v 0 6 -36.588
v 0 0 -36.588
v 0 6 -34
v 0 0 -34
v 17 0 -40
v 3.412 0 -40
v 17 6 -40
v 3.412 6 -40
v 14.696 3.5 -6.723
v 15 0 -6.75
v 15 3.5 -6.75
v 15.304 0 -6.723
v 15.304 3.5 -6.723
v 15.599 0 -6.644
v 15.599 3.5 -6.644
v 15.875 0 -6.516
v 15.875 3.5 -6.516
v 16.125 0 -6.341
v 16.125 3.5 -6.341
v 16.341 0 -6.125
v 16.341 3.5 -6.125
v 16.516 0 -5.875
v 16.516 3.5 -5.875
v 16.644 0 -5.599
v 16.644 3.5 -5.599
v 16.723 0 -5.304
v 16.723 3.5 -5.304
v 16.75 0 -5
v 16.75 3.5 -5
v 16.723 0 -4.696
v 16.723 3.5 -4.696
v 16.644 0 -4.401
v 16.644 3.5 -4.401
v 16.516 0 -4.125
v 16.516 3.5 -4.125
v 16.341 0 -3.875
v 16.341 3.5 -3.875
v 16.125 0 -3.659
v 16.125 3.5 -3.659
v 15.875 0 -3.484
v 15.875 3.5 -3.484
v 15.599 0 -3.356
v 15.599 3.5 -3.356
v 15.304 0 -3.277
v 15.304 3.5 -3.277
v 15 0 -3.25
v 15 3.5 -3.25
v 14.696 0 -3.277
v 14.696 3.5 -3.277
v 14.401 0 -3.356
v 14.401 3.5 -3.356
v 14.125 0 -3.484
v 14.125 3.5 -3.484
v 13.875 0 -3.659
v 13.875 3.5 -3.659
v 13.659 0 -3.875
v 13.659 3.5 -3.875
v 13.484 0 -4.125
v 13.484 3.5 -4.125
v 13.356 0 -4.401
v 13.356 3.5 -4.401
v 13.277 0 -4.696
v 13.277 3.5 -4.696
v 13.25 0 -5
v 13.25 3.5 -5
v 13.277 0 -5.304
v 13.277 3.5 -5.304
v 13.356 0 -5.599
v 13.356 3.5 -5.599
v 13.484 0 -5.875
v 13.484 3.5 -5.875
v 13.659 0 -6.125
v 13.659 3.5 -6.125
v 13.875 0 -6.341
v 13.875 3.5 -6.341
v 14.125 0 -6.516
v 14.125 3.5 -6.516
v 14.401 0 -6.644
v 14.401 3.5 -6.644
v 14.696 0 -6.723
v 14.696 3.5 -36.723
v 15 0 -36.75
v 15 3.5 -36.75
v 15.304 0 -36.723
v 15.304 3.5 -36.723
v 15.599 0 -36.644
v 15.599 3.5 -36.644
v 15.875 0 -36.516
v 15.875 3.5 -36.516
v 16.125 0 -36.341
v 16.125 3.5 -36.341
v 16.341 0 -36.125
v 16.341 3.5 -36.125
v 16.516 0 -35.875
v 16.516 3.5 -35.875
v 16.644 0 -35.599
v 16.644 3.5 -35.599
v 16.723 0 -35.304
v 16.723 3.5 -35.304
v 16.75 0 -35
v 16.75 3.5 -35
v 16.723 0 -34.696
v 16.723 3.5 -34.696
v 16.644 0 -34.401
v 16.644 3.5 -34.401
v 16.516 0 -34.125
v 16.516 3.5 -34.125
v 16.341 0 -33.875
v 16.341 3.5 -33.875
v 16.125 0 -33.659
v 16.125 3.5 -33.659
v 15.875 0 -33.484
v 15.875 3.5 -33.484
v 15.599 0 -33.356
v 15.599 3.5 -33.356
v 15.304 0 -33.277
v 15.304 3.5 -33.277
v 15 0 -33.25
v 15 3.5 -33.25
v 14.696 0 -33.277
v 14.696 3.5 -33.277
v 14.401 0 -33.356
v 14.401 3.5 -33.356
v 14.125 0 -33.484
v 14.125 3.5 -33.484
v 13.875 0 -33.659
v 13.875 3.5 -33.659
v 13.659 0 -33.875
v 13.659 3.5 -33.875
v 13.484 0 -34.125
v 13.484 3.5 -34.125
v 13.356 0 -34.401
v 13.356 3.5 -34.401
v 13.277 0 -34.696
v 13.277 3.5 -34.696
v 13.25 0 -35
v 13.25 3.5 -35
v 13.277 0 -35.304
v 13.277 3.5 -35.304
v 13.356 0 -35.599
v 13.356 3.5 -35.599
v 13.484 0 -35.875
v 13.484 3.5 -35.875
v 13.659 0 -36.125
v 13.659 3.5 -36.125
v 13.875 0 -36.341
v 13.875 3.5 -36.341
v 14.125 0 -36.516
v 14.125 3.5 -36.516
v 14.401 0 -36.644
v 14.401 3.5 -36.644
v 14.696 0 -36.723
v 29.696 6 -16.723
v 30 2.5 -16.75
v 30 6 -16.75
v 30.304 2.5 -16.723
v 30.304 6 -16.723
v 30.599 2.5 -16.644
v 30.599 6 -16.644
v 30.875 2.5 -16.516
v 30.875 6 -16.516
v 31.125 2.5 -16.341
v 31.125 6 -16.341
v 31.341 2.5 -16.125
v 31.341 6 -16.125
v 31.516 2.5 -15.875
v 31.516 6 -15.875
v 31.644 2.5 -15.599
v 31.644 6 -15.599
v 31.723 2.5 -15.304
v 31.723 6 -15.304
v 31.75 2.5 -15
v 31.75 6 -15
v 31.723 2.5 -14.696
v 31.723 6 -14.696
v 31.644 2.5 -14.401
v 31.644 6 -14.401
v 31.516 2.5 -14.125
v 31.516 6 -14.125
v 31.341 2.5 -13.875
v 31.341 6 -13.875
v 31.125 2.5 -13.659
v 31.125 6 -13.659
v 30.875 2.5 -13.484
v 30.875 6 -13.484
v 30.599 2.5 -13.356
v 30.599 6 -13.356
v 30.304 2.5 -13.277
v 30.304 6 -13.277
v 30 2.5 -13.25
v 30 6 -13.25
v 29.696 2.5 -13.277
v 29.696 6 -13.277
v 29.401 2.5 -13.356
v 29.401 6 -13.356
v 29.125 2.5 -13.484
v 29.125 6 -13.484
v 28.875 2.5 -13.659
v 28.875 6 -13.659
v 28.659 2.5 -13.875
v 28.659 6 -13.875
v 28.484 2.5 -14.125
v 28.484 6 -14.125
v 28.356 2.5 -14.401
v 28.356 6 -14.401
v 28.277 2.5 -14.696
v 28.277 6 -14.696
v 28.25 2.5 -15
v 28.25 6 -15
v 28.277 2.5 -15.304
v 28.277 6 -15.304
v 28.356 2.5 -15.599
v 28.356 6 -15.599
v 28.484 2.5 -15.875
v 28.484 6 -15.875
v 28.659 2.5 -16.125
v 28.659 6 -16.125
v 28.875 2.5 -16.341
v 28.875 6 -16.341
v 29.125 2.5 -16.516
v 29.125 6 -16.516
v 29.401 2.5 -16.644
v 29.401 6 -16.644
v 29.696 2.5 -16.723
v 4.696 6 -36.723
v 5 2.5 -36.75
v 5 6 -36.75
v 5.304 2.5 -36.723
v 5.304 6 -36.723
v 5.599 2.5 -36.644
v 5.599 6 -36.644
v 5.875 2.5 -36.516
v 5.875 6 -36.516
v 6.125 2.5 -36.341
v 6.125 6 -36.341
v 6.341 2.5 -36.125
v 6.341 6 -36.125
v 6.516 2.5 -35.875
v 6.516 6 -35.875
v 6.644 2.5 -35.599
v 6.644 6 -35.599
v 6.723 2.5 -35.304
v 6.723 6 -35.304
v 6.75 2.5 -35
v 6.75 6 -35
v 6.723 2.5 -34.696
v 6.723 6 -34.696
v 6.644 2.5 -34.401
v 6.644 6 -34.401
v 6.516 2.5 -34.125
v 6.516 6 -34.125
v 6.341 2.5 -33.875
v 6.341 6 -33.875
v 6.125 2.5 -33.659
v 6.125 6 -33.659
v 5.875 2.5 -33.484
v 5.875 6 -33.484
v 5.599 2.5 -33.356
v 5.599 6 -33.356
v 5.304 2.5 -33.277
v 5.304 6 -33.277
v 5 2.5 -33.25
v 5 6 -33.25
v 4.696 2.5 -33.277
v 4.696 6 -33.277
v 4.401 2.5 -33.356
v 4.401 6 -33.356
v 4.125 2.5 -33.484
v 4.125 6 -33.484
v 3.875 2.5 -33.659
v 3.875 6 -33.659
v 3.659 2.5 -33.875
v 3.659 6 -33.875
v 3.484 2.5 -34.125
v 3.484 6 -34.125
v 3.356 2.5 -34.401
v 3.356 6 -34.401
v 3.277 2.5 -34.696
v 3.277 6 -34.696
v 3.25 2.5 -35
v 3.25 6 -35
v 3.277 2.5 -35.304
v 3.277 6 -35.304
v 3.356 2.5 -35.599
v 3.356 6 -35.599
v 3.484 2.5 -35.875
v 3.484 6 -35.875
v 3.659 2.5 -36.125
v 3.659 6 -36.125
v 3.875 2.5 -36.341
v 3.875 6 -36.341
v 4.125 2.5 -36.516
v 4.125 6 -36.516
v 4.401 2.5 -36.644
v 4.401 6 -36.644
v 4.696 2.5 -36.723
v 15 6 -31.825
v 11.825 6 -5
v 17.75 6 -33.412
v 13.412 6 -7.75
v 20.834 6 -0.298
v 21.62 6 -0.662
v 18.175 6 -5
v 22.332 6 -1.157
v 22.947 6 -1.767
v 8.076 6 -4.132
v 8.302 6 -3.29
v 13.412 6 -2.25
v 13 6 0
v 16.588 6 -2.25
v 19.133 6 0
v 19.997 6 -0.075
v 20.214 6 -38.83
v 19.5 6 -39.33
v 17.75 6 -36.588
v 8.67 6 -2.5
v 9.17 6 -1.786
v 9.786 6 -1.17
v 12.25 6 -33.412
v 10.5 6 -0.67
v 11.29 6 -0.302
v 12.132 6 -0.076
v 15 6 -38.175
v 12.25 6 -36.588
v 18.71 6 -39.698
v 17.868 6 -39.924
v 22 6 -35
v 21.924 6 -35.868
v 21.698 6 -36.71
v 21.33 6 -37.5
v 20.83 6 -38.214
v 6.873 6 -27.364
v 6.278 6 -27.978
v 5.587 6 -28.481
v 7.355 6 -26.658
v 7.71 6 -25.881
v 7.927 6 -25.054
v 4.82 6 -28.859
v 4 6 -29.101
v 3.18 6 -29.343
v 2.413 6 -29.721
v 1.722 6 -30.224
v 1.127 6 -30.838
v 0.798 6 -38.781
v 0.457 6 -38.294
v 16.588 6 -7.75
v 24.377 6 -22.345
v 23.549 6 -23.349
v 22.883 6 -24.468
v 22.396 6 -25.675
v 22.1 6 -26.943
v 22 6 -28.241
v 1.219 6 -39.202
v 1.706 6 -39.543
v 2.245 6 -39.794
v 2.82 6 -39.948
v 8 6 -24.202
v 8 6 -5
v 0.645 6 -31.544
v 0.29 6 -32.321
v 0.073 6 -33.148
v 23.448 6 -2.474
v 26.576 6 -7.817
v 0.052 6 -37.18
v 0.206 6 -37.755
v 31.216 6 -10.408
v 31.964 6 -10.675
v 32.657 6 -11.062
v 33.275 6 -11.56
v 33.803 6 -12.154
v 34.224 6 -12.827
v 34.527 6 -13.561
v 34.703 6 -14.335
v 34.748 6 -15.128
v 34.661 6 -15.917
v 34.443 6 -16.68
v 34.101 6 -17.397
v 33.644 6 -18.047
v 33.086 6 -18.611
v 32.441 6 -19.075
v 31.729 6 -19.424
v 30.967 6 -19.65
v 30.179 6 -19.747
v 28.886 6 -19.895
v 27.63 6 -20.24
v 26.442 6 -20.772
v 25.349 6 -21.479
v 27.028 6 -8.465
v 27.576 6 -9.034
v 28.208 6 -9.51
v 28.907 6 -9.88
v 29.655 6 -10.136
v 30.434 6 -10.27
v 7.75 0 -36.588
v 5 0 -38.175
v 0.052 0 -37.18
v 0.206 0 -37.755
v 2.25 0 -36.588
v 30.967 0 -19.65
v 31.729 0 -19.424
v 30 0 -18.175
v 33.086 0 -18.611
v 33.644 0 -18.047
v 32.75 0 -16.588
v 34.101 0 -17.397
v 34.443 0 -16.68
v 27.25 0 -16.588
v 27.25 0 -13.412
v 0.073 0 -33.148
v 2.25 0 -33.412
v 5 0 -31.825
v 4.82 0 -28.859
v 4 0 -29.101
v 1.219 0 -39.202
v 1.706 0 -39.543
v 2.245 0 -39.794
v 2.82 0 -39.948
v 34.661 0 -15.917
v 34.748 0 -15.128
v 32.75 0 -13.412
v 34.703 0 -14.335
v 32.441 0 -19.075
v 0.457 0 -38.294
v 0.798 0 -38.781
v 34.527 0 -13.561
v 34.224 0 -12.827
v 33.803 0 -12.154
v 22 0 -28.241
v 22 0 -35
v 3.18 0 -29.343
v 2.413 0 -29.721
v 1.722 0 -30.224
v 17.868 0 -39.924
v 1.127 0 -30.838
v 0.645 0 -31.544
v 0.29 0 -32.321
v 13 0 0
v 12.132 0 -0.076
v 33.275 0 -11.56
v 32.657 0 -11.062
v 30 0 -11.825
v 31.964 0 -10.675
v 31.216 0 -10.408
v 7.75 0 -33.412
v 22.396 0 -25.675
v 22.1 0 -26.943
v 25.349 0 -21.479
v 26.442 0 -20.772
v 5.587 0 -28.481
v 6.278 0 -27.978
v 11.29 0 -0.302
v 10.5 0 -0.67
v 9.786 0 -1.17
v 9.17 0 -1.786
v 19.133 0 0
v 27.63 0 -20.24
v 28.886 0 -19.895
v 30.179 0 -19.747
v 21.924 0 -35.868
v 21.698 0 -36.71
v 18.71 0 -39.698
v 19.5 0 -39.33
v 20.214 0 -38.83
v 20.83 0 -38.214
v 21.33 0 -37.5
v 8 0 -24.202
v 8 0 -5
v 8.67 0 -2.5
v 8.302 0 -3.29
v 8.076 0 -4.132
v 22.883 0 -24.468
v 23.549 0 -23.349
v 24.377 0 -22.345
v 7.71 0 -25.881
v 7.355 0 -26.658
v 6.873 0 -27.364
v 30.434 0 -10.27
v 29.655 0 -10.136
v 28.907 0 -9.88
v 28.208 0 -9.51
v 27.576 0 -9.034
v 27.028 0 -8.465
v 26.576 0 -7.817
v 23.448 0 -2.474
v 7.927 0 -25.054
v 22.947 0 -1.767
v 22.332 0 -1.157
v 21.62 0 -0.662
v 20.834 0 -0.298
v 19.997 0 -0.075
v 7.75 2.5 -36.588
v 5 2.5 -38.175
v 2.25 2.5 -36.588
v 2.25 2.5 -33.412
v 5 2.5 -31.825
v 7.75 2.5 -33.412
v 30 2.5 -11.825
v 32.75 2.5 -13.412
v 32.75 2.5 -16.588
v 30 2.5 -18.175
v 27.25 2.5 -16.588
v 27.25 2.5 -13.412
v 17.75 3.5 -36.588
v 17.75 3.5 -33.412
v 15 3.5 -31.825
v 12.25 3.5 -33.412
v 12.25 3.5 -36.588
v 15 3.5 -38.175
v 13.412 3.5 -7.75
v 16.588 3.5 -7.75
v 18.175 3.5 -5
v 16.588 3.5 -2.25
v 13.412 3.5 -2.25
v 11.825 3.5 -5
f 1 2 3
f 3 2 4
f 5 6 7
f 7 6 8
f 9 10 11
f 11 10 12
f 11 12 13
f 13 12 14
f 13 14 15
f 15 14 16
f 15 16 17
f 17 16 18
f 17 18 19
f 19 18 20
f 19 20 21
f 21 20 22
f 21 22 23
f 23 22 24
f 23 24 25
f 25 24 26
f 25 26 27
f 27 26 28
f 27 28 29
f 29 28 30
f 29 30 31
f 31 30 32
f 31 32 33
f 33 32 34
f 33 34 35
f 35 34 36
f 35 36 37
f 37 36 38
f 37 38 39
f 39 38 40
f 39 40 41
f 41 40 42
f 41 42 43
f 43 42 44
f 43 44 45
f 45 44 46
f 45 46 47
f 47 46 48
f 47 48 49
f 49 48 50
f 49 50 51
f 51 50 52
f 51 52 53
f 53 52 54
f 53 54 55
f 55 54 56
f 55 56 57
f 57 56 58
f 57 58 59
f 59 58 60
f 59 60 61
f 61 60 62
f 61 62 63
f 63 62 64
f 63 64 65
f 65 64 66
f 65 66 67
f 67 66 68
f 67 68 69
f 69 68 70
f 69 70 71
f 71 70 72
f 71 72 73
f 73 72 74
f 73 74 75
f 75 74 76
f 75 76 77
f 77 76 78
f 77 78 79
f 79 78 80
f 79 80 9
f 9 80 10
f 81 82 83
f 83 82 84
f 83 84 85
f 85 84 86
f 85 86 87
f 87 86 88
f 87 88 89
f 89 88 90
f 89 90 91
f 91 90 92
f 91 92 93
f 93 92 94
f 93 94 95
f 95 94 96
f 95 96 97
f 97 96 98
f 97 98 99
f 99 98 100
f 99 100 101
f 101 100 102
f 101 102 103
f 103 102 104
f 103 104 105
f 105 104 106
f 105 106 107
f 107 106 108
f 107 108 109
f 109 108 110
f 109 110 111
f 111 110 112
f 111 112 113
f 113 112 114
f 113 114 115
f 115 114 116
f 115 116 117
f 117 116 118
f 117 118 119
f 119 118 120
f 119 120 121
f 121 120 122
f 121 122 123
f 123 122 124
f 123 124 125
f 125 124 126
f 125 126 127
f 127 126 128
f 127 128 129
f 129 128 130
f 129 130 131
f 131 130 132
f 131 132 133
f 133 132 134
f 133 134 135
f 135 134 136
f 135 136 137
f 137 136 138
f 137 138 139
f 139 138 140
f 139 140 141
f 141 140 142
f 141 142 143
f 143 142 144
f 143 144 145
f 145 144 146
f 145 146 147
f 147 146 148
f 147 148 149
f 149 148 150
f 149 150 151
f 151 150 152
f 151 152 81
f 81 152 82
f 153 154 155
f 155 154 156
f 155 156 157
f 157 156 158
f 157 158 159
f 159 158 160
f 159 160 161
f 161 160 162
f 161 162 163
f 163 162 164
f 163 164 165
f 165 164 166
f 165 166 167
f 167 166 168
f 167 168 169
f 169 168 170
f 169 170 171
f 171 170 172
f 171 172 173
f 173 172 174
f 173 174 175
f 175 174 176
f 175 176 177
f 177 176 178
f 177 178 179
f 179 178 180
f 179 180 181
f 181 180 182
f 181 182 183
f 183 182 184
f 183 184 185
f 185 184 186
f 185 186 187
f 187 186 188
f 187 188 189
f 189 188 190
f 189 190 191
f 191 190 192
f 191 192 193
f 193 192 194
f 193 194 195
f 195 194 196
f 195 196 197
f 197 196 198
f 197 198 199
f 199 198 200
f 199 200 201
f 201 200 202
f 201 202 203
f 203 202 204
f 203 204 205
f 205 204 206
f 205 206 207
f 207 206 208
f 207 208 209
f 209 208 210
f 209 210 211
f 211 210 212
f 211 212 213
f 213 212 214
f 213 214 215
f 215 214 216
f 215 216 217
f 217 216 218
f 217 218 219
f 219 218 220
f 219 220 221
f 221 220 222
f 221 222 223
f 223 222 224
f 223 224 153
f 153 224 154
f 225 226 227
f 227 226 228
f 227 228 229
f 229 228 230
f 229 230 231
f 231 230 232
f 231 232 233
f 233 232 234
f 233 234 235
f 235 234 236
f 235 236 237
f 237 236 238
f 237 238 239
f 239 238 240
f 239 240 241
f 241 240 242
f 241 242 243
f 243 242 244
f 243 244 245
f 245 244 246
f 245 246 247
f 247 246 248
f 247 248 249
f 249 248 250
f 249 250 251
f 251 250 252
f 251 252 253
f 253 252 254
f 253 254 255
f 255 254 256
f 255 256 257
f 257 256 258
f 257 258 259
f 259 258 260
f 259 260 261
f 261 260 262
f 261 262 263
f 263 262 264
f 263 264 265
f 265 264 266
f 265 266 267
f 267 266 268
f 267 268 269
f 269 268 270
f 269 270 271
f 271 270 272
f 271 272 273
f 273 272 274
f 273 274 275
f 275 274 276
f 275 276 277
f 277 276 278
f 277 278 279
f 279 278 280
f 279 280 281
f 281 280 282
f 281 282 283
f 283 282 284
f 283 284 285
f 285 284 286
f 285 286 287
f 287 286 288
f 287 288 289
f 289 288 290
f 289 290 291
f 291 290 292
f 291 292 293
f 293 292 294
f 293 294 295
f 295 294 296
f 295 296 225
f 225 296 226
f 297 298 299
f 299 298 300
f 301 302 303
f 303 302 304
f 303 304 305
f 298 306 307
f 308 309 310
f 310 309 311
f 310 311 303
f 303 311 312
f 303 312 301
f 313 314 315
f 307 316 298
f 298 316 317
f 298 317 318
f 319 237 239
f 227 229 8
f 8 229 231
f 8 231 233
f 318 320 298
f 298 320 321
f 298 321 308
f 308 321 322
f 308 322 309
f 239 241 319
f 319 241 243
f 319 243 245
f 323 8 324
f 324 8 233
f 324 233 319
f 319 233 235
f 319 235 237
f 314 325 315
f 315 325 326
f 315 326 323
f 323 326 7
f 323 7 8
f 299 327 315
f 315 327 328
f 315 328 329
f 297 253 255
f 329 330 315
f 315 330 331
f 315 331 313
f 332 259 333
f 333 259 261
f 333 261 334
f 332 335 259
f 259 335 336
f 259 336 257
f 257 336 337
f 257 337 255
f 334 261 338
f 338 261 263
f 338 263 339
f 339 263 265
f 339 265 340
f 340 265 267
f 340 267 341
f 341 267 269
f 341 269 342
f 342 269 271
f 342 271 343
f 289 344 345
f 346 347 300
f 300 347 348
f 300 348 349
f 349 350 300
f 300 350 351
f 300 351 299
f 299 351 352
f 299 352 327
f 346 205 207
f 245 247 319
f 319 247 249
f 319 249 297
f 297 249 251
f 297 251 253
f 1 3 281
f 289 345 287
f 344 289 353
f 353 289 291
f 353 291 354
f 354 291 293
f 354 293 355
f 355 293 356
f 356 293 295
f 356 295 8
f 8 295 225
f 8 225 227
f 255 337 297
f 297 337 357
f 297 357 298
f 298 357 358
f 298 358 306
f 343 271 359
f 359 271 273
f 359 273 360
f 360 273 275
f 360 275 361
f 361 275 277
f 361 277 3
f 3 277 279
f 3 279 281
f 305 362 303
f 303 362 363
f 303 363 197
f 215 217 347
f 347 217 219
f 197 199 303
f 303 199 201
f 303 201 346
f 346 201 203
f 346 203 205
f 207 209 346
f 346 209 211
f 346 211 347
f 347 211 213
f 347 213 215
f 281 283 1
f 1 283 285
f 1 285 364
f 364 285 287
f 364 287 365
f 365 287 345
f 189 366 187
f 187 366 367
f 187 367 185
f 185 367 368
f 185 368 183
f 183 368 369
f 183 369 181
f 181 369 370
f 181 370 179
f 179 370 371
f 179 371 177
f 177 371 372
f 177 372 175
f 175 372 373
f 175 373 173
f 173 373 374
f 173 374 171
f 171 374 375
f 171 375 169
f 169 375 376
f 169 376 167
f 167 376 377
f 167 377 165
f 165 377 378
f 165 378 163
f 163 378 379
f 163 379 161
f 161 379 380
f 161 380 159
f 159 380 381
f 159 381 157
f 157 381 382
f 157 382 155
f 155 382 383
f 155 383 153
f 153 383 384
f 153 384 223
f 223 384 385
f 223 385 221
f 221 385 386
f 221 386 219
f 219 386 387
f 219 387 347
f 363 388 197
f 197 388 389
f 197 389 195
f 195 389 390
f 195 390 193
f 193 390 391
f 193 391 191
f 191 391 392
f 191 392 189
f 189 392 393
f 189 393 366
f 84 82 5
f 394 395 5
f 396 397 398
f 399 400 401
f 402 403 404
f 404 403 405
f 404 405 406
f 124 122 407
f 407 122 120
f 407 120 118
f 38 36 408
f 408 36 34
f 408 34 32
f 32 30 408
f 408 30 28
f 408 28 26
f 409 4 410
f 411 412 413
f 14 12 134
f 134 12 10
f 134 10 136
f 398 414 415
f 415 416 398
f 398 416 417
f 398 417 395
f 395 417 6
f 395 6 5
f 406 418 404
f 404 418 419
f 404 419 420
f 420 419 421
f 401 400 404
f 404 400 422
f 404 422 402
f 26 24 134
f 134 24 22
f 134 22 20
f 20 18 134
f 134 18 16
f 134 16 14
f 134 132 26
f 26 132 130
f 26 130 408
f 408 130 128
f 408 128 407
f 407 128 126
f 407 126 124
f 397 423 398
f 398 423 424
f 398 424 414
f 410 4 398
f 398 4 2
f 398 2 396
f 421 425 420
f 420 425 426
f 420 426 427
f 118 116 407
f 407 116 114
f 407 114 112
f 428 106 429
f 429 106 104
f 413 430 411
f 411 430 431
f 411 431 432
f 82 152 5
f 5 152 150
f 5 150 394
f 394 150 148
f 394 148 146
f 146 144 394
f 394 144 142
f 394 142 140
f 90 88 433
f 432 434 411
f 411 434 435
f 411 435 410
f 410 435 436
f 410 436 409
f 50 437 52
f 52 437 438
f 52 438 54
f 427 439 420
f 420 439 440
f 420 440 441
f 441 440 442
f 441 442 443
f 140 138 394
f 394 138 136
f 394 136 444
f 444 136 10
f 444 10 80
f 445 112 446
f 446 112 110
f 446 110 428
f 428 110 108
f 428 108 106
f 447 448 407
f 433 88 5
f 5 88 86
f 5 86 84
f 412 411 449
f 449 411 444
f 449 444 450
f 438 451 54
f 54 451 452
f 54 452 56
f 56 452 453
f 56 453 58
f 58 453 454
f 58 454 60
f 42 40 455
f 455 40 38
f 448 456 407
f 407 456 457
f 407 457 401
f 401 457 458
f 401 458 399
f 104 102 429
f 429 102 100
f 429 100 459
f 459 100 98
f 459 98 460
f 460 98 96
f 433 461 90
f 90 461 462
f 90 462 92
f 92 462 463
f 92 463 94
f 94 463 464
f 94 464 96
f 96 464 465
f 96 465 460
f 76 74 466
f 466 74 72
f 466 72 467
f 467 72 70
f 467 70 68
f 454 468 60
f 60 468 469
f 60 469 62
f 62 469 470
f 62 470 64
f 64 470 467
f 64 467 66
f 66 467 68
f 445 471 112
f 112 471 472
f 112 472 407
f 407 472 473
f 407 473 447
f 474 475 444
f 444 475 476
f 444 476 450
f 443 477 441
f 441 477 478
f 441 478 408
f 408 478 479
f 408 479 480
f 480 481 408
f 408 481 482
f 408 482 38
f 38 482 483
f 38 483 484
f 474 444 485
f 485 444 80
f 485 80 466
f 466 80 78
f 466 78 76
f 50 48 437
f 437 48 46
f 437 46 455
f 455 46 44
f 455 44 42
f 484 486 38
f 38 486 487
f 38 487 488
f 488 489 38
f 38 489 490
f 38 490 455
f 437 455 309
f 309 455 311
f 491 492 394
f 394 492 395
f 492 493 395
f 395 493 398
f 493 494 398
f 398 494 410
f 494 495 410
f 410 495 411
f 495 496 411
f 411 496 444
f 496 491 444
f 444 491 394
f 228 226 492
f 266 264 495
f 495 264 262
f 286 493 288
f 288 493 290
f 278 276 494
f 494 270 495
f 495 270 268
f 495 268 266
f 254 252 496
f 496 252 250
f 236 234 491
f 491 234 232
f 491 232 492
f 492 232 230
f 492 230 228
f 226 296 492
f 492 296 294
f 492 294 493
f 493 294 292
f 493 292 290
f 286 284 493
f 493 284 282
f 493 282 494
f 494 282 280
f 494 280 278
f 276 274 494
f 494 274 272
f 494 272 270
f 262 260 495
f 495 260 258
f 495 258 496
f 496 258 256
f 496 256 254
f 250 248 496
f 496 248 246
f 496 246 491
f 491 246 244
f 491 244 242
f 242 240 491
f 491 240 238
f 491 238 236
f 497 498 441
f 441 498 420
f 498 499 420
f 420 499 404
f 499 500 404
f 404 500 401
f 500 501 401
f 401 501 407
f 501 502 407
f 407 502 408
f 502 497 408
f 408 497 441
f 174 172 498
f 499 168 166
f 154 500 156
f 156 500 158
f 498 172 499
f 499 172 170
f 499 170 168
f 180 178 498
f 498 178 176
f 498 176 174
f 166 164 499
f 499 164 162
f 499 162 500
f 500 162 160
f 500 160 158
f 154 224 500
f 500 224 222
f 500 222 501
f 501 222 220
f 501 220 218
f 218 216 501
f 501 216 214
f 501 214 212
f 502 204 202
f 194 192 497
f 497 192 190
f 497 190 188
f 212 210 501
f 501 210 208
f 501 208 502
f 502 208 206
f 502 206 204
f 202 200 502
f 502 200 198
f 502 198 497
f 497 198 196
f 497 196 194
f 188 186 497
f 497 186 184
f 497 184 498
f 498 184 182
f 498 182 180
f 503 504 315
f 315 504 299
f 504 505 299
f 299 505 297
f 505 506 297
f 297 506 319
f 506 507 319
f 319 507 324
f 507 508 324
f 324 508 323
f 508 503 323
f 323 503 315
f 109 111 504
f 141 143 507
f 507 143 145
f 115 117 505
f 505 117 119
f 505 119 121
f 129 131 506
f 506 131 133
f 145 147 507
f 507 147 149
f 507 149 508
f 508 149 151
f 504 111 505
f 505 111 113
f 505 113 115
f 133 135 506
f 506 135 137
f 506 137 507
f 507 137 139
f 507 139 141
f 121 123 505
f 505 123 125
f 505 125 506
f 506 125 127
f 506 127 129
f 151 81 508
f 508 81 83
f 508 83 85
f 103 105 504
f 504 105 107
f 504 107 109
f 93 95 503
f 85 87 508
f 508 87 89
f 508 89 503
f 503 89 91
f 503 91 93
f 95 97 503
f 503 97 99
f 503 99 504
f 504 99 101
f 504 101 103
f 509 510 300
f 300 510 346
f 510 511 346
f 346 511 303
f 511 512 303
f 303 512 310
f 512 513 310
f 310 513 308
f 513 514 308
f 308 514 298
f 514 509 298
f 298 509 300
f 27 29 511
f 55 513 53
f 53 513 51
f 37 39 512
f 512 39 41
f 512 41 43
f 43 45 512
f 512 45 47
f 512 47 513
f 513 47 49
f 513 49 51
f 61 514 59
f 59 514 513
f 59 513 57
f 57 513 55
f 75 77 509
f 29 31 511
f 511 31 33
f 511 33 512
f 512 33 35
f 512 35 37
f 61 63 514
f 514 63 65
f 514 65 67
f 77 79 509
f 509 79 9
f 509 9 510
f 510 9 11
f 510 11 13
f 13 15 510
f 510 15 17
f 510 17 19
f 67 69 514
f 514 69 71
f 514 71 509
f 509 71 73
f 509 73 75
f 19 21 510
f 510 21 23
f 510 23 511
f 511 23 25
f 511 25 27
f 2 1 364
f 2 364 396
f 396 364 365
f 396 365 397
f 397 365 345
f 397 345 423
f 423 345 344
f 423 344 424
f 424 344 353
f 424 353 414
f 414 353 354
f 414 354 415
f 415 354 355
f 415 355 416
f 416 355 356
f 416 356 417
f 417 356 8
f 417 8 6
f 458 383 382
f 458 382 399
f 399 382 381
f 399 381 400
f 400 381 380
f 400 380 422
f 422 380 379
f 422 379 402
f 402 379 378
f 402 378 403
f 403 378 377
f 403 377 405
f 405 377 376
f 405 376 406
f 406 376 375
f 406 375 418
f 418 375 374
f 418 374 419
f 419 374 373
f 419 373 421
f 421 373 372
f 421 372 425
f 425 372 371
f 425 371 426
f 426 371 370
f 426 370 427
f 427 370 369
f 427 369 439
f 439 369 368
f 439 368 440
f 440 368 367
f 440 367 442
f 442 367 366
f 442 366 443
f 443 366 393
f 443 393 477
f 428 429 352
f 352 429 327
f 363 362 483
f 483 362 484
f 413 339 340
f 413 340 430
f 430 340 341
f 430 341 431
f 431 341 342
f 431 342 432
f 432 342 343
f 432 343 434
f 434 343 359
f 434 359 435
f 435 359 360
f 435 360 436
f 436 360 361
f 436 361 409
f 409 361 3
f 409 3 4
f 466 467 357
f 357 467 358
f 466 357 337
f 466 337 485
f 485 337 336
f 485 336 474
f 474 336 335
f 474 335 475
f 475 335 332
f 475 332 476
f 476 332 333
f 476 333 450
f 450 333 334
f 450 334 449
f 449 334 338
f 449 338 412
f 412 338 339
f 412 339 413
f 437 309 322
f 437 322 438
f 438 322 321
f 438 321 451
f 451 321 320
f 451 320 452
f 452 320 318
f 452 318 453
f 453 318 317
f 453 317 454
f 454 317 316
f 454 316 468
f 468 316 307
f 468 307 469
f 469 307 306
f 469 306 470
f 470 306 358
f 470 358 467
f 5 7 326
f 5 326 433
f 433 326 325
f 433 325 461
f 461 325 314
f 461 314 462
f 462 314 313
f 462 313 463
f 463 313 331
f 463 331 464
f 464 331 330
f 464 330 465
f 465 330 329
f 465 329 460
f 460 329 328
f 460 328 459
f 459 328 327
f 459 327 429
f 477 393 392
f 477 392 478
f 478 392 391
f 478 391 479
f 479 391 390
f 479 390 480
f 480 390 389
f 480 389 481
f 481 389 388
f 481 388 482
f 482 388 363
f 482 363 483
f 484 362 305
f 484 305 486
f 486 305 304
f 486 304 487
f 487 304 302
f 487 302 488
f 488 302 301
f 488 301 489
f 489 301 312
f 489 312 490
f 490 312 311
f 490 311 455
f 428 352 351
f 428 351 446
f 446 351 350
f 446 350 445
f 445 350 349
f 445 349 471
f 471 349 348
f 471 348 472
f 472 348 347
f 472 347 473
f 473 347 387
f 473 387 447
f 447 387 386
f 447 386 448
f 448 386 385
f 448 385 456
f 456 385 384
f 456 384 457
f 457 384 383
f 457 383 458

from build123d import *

# Parameters (mm, degrees)
SKETCH2_W           = 35
SKETCH2_H           = 40
SKETCH2_R           = 1.75
BOSS_EXTRUDE2_DEPTH = 6
CUT_EXTRUDE1_DEPTH  = 2.5
CUT_EXTRUDE2_DEPTH  = 2.5
CUT_EXTRUDE3_DEPTH  = 7
FILLET3_R           = 5
FILLET4_R           = 8.5


with BuildPart() as part:
    # Sketch2 → Boss-Extrude2 (new body)
    with BuildSketch(Plane(origin=(0, 0, 0), x_dir=(1, 0, 0), z_dir=(0, 1, 0))):
        with Locations((17.5, 20)):
            Rectangle(SKETCH2_W, SKETCH2_H)
        with Locations((5, 35)):
            Circle(SKETCH2_R, mode=Mode.SUBTRACT)
        with Locations((30, 15)):
            Circle(SKETCH2_R, mode=Mode.SUBTRACT)
        with Locations((15, 35)):
            Circle(SKETCH2_R, mode=Mode.SUBTRACT)
        with Locations((15, 5)):
            Circle(SKETCH2_R, mode=Mode.SUBTRACT)
    extrude(amount=BOSS_EXTRUDE2_DEPTH)

    # Sketch3 → Cut-Extrude1 (cut)
    with BuildSketch(Plane.XZ):
        Polygon((7.75, -36.58771324), (7.75, -33.41228676), (5, -31.824573519), (2.25, -33.41228676), (2.25, -36.58771324), (5, -38.175426481), align=None)
        Polygon((30, -11.824573519), (27.25, -13.41228676), (27.25, -16.58771324), (30, -18.175426481), (32.75, -16.58771324), (32.75, -13.41228676), align=None)
    extrude(amount=-CUT_EXTRUDE1_DEPTH, mode=Mode.SUBTRACT)

    # Sketch4 → Cut-Extrude2 (cut)
    with BuildSketch(Plane(origin=(0, 6, 0), x_dir=(1, 0, 0), z_dir=(0, 1, 0))):
        Polygon((17.75, 36.58771324), (15, 38.175426481), (12.25, 36.58771324), (12.25, 33.41228676), (15, 31.824573519), (17.75, 33.41228676), align=None)
        Polygon((13.41228676, 7.75), (11.824573519, 5), (13.41228676, 2.25), (16.58771324, 2.25), (18.175426481, 5), (16.58771324, 7.75), align=None)
    extrude(amount=-CUT_EXTRUDE2_DEPTH, mode=Mode.SUBTRACT)

    # Sketch5 → Cut-Extrude3 (cut, through all)
    with BuildSketch(Plane(origin=(0, 6, 0), x_dir=(1, 0, 0), z_dir=(0, 1, 0))):
        with BuildLine():
            Line((0, 36.58771324), (0, 40))
            Line((0, 40), (3.41228676, 40))
            ThreePointArc((3.41228676, 40), (0.999435653, 39.000564347), (0, 36.58771324))
        make_face()
        with BuildLine():
            Line((30, 19.75), (22, 19.75))
            Line((22, 19.75), (22, 40))
            Line((22, 40), (35, 40))
            Line((35, 40), (35, 0))
            Line((35, 0), (22, 0))
            Line((22, 0), (28, 10.25))
            Line((28, 10.25), (30, 10.25))
            ThreePointArc((30, 10.25), (34.75, 15), (30, 19.75))
        make_face()
        with BuildLine():
            Line((0, 34), (0, 0))
            Line((0, 0), (8, 0))
            Line((8, 0), (8, 29))
            Line((8, 29), (5, 29))
            ThreePointArc((5, 29), (1.464466094, 30.464466094), (0, 34))
        make_face()
    extrude(amount=-CUT_EXTRUDE3_DEPTH, mode=Mode.SUBTRACT)

    # Fillet3
    fillet3_edges = [part.edges().sort_by_distance(p)[0] for p in [
        (28, 3, -10.25),
        (22, 3, 0),
        (22, 3, -40),
        (8, 3, -29),
        (8, 3, 0),
    ]]
    fillet(fillet3_edges, radius=FILLET3_R)

    # Fillet4
    fillet4_edges = [part.edges().sort_by_distance(p)[0] for p in [
        (22, 3, -19.75),
    ]]
    fillet(fillet4_edges, radius=FILLET4_R)


solid = part.part
